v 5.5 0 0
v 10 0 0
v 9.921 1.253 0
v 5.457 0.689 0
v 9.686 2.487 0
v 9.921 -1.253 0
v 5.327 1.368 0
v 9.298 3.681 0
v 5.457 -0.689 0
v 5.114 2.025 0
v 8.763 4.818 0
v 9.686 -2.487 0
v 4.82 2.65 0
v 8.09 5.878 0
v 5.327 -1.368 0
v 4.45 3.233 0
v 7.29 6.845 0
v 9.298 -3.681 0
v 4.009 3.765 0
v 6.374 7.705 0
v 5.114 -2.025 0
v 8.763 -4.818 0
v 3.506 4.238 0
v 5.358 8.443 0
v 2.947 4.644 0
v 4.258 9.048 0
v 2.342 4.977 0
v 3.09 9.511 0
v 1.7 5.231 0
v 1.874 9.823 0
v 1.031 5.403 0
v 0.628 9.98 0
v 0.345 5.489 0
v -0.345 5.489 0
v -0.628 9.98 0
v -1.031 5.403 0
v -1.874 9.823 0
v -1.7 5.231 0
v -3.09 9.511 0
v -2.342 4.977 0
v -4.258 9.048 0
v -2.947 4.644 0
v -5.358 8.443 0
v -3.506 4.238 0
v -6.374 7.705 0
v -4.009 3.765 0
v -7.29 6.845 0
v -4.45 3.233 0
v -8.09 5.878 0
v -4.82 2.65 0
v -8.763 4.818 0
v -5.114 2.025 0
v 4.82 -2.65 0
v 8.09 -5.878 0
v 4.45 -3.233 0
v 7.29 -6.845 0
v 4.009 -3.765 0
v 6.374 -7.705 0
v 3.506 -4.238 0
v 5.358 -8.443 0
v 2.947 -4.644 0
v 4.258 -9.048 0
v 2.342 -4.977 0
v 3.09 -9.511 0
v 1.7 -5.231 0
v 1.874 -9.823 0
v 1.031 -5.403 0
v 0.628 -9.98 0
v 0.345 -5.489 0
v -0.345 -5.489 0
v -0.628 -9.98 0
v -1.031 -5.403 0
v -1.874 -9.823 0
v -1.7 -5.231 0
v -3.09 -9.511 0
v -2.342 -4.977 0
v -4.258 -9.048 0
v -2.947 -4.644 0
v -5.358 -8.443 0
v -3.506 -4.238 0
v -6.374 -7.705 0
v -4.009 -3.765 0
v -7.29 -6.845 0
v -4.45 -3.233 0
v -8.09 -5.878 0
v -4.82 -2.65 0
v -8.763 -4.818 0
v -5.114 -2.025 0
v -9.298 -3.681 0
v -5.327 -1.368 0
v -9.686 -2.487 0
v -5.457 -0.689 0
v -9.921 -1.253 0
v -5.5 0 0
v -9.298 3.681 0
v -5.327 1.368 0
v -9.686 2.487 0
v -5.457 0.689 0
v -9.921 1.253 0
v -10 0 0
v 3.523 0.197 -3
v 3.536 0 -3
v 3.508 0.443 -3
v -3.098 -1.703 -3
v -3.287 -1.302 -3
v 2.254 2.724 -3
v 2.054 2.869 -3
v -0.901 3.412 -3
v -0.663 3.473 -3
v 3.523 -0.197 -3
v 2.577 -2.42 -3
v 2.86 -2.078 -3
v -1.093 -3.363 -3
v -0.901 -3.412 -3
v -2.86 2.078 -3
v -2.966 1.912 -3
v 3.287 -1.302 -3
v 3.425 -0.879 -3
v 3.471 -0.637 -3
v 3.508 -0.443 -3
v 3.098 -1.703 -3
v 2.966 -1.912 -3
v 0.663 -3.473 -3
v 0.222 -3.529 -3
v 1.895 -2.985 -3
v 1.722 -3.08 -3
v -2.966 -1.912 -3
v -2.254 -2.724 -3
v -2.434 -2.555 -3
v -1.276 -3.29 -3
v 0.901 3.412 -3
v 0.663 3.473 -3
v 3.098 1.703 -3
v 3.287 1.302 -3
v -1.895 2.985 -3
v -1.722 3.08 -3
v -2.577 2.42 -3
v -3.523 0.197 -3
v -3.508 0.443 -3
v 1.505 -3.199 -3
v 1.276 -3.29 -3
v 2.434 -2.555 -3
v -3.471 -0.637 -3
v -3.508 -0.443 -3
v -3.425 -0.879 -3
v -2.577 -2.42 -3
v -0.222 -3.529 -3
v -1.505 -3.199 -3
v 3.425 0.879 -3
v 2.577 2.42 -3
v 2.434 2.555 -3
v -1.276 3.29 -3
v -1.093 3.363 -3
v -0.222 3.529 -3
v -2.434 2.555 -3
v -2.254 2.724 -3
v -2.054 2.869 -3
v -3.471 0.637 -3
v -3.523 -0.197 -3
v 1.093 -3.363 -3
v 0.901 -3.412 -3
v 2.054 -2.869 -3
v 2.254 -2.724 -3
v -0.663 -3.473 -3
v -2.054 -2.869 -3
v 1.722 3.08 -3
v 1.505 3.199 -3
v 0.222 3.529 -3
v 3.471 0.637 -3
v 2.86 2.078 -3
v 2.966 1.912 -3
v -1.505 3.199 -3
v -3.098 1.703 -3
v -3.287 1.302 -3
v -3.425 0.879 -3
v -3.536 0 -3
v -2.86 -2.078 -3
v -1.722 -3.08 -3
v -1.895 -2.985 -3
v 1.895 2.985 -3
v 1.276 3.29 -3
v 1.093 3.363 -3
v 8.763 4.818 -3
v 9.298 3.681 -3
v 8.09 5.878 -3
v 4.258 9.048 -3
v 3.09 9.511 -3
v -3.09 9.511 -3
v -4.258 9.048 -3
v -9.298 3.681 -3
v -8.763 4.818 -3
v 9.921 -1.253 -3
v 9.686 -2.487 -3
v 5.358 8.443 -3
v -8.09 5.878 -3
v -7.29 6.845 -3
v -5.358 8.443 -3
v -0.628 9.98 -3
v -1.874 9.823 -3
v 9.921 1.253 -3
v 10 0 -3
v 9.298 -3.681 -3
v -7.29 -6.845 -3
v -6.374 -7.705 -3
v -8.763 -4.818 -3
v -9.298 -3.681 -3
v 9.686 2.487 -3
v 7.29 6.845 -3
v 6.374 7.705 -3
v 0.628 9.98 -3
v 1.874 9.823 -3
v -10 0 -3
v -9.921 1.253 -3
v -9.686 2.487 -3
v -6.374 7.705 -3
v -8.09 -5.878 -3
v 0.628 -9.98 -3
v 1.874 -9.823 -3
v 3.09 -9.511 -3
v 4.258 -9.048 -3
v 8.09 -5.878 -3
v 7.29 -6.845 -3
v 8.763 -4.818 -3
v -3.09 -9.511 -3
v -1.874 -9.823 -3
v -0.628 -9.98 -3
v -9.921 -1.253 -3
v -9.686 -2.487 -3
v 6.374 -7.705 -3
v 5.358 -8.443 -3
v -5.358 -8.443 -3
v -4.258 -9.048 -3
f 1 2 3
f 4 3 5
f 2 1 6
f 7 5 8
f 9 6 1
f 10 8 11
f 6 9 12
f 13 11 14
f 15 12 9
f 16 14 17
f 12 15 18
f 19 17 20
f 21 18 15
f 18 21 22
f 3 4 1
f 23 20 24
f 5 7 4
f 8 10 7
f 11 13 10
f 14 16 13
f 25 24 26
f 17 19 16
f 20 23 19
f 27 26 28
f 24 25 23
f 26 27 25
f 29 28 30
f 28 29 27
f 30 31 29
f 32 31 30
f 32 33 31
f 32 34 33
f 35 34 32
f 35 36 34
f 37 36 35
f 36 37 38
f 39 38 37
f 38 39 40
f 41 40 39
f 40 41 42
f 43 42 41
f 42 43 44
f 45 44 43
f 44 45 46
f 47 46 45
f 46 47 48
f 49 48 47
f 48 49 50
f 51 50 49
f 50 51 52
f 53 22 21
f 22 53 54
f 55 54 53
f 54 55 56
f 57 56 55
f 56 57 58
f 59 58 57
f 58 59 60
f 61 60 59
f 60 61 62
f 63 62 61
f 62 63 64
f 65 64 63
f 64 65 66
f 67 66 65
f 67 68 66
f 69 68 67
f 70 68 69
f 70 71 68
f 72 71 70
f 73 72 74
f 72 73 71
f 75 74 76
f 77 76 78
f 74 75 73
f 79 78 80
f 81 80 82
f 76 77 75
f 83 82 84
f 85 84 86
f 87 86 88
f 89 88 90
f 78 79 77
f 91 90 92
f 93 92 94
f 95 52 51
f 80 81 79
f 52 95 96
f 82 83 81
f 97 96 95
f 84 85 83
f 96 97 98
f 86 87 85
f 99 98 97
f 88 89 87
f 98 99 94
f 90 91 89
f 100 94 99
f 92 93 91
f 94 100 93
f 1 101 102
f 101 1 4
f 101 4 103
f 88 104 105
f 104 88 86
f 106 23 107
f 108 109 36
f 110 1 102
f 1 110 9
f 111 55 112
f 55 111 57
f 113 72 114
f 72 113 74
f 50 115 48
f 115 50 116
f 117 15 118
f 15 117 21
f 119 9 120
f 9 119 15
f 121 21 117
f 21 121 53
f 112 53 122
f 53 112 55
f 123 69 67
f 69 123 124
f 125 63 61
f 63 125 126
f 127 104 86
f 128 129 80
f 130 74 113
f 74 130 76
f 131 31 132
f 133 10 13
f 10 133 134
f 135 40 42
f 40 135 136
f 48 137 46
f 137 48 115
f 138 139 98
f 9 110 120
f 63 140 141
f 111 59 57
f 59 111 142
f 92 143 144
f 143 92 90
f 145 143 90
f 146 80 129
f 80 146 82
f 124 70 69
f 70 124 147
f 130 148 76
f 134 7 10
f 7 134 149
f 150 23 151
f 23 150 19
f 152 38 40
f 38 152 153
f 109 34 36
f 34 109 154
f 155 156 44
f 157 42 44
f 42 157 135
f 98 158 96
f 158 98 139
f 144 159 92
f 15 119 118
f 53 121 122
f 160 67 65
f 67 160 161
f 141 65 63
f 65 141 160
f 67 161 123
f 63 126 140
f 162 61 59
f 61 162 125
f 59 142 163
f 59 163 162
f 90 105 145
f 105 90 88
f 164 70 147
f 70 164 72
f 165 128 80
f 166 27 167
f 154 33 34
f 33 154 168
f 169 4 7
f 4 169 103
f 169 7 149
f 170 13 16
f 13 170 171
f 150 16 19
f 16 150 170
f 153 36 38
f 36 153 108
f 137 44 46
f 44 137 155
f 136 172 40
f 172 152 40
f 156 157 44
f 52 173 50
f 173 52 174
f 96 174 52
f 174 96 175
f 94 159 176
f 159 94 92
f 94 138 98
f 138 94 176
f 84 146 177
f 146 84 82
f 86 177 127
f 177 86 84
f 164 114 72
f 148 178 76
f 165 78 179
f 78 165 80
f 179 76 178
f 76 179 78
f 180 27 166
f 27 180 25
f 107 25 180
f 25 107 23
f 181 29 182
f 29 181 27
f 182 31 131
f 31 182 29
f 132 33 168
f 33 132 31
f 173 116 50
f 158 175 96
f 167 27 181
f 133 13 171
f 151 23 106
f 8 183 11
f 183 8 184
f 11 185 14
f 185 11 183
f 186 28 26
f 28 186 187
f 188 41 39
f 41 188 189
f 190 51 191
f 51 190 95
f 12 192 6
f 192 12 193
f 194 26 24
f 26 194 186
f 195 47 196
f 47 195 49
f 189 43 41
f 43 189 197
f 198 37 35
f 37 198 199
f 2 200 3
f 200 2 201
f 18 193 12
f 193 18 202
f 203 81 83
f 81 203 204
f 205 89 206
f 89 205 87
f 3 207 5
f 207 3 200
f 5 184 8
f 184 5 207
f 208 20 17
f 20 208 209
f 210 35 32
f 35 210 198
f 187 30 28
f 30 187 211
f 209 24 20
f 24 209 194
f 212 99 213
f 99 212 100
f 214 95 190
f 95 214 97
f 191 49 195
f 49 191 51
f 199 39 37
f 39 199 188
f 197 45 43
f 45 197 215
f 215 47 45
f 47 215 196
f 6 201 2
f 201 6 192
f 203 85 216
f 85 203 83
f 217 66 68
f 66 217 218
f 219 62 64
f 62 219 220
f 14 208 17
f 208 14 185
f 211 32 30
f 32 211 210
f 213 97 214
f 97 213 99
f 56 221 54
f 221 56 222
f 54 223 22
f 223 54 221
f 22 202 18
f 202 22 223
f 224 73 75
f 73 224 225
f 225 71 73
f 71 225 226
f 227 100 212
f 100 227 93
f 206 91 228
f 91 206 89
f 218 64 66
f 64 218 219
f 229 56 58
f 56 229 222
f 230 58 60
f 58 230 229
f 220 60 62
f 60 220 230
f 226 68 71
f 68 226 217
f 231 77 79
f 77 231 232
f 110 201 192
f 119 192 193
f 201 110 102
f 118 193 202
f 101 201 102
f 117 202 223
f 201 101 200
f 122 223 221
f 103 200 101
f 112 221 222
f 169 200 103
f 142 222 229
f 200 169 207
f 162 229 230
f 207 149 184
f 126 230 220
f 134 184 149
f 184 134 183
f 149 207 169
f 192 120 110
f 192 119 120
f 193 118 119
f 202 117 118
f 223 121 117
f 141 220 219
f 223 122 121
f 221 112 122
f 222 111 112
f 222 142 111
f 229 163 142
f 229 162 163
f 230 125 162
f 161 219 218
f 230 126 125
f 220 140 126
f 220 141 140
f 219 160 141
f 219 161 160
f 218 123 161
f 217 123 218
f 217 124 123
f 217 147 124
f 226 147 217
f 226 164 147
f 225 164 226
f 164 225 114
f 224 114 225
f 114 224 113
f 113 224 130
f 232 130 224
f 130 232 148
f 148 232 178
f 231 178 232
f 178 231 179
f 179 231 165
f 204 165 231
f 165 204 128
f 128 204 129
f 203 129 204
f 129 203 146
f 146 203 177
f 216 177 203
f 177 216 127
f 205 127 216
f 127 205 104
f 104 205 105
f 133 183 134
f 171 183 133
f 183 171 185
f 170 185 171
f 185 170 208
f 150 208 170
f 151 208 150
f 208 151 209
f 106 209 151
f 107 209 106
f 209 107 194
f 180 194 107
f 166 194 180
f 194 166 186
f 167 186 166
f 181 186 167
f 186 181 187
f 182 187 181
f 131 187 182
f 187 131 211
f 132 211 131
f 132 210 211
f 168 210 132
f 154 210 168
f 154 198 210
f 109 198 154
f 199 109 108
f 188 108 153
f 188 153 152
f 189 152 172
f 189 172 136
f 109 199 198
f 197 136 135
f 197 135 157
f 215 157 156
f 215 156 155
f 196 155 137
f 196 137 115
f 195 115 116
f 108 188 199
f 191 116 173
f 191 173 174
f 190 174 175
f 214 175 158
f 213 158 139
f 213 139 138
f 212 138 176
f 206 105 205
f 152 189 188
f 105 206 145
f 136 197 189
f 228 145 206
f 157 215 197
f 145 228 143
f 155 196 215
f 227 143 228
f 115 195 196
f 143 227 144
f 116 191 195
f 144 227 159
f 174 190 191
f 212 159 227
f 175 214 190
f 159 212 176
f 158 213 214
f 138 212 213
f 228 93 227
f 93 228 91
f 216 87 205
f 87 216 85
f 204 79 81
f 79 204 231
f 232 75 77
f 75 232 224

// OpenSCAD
$fn = 50;


difference() {
	union() {
		translate(v = [0, 0, -3.0000000000]) {
			cylinder(h = 3, r = 10.0000000000);
		}
	}
	union() {
		translate(v = [0, 0, 0]) {
			rotate(a = [0, 0, 0]) {
				difference() {
					union() {
						#translate(v = [0, 0, -3.0000000000]) {
							cylinder(h = 3, r = 2.2500000000);
						}
						#translate(v = [0, 0, -4.2000000000]) {
							cylinder(h = 4.2000000000, r = 10.0000000000, r1 = 2.7500000000, r2 = 5.5000000000);
						}
						#translate(v = [0, 0, -3.0000000000]) {
							cylinder(h = 3, r = 2.7500000000);
						}
						#translate(v = [0, 0, -3.0000000000]) {
							cylinder(h = 3, r = 2.2500000000);
						}
					}
					union();
				}
			}
		}
	}
}
